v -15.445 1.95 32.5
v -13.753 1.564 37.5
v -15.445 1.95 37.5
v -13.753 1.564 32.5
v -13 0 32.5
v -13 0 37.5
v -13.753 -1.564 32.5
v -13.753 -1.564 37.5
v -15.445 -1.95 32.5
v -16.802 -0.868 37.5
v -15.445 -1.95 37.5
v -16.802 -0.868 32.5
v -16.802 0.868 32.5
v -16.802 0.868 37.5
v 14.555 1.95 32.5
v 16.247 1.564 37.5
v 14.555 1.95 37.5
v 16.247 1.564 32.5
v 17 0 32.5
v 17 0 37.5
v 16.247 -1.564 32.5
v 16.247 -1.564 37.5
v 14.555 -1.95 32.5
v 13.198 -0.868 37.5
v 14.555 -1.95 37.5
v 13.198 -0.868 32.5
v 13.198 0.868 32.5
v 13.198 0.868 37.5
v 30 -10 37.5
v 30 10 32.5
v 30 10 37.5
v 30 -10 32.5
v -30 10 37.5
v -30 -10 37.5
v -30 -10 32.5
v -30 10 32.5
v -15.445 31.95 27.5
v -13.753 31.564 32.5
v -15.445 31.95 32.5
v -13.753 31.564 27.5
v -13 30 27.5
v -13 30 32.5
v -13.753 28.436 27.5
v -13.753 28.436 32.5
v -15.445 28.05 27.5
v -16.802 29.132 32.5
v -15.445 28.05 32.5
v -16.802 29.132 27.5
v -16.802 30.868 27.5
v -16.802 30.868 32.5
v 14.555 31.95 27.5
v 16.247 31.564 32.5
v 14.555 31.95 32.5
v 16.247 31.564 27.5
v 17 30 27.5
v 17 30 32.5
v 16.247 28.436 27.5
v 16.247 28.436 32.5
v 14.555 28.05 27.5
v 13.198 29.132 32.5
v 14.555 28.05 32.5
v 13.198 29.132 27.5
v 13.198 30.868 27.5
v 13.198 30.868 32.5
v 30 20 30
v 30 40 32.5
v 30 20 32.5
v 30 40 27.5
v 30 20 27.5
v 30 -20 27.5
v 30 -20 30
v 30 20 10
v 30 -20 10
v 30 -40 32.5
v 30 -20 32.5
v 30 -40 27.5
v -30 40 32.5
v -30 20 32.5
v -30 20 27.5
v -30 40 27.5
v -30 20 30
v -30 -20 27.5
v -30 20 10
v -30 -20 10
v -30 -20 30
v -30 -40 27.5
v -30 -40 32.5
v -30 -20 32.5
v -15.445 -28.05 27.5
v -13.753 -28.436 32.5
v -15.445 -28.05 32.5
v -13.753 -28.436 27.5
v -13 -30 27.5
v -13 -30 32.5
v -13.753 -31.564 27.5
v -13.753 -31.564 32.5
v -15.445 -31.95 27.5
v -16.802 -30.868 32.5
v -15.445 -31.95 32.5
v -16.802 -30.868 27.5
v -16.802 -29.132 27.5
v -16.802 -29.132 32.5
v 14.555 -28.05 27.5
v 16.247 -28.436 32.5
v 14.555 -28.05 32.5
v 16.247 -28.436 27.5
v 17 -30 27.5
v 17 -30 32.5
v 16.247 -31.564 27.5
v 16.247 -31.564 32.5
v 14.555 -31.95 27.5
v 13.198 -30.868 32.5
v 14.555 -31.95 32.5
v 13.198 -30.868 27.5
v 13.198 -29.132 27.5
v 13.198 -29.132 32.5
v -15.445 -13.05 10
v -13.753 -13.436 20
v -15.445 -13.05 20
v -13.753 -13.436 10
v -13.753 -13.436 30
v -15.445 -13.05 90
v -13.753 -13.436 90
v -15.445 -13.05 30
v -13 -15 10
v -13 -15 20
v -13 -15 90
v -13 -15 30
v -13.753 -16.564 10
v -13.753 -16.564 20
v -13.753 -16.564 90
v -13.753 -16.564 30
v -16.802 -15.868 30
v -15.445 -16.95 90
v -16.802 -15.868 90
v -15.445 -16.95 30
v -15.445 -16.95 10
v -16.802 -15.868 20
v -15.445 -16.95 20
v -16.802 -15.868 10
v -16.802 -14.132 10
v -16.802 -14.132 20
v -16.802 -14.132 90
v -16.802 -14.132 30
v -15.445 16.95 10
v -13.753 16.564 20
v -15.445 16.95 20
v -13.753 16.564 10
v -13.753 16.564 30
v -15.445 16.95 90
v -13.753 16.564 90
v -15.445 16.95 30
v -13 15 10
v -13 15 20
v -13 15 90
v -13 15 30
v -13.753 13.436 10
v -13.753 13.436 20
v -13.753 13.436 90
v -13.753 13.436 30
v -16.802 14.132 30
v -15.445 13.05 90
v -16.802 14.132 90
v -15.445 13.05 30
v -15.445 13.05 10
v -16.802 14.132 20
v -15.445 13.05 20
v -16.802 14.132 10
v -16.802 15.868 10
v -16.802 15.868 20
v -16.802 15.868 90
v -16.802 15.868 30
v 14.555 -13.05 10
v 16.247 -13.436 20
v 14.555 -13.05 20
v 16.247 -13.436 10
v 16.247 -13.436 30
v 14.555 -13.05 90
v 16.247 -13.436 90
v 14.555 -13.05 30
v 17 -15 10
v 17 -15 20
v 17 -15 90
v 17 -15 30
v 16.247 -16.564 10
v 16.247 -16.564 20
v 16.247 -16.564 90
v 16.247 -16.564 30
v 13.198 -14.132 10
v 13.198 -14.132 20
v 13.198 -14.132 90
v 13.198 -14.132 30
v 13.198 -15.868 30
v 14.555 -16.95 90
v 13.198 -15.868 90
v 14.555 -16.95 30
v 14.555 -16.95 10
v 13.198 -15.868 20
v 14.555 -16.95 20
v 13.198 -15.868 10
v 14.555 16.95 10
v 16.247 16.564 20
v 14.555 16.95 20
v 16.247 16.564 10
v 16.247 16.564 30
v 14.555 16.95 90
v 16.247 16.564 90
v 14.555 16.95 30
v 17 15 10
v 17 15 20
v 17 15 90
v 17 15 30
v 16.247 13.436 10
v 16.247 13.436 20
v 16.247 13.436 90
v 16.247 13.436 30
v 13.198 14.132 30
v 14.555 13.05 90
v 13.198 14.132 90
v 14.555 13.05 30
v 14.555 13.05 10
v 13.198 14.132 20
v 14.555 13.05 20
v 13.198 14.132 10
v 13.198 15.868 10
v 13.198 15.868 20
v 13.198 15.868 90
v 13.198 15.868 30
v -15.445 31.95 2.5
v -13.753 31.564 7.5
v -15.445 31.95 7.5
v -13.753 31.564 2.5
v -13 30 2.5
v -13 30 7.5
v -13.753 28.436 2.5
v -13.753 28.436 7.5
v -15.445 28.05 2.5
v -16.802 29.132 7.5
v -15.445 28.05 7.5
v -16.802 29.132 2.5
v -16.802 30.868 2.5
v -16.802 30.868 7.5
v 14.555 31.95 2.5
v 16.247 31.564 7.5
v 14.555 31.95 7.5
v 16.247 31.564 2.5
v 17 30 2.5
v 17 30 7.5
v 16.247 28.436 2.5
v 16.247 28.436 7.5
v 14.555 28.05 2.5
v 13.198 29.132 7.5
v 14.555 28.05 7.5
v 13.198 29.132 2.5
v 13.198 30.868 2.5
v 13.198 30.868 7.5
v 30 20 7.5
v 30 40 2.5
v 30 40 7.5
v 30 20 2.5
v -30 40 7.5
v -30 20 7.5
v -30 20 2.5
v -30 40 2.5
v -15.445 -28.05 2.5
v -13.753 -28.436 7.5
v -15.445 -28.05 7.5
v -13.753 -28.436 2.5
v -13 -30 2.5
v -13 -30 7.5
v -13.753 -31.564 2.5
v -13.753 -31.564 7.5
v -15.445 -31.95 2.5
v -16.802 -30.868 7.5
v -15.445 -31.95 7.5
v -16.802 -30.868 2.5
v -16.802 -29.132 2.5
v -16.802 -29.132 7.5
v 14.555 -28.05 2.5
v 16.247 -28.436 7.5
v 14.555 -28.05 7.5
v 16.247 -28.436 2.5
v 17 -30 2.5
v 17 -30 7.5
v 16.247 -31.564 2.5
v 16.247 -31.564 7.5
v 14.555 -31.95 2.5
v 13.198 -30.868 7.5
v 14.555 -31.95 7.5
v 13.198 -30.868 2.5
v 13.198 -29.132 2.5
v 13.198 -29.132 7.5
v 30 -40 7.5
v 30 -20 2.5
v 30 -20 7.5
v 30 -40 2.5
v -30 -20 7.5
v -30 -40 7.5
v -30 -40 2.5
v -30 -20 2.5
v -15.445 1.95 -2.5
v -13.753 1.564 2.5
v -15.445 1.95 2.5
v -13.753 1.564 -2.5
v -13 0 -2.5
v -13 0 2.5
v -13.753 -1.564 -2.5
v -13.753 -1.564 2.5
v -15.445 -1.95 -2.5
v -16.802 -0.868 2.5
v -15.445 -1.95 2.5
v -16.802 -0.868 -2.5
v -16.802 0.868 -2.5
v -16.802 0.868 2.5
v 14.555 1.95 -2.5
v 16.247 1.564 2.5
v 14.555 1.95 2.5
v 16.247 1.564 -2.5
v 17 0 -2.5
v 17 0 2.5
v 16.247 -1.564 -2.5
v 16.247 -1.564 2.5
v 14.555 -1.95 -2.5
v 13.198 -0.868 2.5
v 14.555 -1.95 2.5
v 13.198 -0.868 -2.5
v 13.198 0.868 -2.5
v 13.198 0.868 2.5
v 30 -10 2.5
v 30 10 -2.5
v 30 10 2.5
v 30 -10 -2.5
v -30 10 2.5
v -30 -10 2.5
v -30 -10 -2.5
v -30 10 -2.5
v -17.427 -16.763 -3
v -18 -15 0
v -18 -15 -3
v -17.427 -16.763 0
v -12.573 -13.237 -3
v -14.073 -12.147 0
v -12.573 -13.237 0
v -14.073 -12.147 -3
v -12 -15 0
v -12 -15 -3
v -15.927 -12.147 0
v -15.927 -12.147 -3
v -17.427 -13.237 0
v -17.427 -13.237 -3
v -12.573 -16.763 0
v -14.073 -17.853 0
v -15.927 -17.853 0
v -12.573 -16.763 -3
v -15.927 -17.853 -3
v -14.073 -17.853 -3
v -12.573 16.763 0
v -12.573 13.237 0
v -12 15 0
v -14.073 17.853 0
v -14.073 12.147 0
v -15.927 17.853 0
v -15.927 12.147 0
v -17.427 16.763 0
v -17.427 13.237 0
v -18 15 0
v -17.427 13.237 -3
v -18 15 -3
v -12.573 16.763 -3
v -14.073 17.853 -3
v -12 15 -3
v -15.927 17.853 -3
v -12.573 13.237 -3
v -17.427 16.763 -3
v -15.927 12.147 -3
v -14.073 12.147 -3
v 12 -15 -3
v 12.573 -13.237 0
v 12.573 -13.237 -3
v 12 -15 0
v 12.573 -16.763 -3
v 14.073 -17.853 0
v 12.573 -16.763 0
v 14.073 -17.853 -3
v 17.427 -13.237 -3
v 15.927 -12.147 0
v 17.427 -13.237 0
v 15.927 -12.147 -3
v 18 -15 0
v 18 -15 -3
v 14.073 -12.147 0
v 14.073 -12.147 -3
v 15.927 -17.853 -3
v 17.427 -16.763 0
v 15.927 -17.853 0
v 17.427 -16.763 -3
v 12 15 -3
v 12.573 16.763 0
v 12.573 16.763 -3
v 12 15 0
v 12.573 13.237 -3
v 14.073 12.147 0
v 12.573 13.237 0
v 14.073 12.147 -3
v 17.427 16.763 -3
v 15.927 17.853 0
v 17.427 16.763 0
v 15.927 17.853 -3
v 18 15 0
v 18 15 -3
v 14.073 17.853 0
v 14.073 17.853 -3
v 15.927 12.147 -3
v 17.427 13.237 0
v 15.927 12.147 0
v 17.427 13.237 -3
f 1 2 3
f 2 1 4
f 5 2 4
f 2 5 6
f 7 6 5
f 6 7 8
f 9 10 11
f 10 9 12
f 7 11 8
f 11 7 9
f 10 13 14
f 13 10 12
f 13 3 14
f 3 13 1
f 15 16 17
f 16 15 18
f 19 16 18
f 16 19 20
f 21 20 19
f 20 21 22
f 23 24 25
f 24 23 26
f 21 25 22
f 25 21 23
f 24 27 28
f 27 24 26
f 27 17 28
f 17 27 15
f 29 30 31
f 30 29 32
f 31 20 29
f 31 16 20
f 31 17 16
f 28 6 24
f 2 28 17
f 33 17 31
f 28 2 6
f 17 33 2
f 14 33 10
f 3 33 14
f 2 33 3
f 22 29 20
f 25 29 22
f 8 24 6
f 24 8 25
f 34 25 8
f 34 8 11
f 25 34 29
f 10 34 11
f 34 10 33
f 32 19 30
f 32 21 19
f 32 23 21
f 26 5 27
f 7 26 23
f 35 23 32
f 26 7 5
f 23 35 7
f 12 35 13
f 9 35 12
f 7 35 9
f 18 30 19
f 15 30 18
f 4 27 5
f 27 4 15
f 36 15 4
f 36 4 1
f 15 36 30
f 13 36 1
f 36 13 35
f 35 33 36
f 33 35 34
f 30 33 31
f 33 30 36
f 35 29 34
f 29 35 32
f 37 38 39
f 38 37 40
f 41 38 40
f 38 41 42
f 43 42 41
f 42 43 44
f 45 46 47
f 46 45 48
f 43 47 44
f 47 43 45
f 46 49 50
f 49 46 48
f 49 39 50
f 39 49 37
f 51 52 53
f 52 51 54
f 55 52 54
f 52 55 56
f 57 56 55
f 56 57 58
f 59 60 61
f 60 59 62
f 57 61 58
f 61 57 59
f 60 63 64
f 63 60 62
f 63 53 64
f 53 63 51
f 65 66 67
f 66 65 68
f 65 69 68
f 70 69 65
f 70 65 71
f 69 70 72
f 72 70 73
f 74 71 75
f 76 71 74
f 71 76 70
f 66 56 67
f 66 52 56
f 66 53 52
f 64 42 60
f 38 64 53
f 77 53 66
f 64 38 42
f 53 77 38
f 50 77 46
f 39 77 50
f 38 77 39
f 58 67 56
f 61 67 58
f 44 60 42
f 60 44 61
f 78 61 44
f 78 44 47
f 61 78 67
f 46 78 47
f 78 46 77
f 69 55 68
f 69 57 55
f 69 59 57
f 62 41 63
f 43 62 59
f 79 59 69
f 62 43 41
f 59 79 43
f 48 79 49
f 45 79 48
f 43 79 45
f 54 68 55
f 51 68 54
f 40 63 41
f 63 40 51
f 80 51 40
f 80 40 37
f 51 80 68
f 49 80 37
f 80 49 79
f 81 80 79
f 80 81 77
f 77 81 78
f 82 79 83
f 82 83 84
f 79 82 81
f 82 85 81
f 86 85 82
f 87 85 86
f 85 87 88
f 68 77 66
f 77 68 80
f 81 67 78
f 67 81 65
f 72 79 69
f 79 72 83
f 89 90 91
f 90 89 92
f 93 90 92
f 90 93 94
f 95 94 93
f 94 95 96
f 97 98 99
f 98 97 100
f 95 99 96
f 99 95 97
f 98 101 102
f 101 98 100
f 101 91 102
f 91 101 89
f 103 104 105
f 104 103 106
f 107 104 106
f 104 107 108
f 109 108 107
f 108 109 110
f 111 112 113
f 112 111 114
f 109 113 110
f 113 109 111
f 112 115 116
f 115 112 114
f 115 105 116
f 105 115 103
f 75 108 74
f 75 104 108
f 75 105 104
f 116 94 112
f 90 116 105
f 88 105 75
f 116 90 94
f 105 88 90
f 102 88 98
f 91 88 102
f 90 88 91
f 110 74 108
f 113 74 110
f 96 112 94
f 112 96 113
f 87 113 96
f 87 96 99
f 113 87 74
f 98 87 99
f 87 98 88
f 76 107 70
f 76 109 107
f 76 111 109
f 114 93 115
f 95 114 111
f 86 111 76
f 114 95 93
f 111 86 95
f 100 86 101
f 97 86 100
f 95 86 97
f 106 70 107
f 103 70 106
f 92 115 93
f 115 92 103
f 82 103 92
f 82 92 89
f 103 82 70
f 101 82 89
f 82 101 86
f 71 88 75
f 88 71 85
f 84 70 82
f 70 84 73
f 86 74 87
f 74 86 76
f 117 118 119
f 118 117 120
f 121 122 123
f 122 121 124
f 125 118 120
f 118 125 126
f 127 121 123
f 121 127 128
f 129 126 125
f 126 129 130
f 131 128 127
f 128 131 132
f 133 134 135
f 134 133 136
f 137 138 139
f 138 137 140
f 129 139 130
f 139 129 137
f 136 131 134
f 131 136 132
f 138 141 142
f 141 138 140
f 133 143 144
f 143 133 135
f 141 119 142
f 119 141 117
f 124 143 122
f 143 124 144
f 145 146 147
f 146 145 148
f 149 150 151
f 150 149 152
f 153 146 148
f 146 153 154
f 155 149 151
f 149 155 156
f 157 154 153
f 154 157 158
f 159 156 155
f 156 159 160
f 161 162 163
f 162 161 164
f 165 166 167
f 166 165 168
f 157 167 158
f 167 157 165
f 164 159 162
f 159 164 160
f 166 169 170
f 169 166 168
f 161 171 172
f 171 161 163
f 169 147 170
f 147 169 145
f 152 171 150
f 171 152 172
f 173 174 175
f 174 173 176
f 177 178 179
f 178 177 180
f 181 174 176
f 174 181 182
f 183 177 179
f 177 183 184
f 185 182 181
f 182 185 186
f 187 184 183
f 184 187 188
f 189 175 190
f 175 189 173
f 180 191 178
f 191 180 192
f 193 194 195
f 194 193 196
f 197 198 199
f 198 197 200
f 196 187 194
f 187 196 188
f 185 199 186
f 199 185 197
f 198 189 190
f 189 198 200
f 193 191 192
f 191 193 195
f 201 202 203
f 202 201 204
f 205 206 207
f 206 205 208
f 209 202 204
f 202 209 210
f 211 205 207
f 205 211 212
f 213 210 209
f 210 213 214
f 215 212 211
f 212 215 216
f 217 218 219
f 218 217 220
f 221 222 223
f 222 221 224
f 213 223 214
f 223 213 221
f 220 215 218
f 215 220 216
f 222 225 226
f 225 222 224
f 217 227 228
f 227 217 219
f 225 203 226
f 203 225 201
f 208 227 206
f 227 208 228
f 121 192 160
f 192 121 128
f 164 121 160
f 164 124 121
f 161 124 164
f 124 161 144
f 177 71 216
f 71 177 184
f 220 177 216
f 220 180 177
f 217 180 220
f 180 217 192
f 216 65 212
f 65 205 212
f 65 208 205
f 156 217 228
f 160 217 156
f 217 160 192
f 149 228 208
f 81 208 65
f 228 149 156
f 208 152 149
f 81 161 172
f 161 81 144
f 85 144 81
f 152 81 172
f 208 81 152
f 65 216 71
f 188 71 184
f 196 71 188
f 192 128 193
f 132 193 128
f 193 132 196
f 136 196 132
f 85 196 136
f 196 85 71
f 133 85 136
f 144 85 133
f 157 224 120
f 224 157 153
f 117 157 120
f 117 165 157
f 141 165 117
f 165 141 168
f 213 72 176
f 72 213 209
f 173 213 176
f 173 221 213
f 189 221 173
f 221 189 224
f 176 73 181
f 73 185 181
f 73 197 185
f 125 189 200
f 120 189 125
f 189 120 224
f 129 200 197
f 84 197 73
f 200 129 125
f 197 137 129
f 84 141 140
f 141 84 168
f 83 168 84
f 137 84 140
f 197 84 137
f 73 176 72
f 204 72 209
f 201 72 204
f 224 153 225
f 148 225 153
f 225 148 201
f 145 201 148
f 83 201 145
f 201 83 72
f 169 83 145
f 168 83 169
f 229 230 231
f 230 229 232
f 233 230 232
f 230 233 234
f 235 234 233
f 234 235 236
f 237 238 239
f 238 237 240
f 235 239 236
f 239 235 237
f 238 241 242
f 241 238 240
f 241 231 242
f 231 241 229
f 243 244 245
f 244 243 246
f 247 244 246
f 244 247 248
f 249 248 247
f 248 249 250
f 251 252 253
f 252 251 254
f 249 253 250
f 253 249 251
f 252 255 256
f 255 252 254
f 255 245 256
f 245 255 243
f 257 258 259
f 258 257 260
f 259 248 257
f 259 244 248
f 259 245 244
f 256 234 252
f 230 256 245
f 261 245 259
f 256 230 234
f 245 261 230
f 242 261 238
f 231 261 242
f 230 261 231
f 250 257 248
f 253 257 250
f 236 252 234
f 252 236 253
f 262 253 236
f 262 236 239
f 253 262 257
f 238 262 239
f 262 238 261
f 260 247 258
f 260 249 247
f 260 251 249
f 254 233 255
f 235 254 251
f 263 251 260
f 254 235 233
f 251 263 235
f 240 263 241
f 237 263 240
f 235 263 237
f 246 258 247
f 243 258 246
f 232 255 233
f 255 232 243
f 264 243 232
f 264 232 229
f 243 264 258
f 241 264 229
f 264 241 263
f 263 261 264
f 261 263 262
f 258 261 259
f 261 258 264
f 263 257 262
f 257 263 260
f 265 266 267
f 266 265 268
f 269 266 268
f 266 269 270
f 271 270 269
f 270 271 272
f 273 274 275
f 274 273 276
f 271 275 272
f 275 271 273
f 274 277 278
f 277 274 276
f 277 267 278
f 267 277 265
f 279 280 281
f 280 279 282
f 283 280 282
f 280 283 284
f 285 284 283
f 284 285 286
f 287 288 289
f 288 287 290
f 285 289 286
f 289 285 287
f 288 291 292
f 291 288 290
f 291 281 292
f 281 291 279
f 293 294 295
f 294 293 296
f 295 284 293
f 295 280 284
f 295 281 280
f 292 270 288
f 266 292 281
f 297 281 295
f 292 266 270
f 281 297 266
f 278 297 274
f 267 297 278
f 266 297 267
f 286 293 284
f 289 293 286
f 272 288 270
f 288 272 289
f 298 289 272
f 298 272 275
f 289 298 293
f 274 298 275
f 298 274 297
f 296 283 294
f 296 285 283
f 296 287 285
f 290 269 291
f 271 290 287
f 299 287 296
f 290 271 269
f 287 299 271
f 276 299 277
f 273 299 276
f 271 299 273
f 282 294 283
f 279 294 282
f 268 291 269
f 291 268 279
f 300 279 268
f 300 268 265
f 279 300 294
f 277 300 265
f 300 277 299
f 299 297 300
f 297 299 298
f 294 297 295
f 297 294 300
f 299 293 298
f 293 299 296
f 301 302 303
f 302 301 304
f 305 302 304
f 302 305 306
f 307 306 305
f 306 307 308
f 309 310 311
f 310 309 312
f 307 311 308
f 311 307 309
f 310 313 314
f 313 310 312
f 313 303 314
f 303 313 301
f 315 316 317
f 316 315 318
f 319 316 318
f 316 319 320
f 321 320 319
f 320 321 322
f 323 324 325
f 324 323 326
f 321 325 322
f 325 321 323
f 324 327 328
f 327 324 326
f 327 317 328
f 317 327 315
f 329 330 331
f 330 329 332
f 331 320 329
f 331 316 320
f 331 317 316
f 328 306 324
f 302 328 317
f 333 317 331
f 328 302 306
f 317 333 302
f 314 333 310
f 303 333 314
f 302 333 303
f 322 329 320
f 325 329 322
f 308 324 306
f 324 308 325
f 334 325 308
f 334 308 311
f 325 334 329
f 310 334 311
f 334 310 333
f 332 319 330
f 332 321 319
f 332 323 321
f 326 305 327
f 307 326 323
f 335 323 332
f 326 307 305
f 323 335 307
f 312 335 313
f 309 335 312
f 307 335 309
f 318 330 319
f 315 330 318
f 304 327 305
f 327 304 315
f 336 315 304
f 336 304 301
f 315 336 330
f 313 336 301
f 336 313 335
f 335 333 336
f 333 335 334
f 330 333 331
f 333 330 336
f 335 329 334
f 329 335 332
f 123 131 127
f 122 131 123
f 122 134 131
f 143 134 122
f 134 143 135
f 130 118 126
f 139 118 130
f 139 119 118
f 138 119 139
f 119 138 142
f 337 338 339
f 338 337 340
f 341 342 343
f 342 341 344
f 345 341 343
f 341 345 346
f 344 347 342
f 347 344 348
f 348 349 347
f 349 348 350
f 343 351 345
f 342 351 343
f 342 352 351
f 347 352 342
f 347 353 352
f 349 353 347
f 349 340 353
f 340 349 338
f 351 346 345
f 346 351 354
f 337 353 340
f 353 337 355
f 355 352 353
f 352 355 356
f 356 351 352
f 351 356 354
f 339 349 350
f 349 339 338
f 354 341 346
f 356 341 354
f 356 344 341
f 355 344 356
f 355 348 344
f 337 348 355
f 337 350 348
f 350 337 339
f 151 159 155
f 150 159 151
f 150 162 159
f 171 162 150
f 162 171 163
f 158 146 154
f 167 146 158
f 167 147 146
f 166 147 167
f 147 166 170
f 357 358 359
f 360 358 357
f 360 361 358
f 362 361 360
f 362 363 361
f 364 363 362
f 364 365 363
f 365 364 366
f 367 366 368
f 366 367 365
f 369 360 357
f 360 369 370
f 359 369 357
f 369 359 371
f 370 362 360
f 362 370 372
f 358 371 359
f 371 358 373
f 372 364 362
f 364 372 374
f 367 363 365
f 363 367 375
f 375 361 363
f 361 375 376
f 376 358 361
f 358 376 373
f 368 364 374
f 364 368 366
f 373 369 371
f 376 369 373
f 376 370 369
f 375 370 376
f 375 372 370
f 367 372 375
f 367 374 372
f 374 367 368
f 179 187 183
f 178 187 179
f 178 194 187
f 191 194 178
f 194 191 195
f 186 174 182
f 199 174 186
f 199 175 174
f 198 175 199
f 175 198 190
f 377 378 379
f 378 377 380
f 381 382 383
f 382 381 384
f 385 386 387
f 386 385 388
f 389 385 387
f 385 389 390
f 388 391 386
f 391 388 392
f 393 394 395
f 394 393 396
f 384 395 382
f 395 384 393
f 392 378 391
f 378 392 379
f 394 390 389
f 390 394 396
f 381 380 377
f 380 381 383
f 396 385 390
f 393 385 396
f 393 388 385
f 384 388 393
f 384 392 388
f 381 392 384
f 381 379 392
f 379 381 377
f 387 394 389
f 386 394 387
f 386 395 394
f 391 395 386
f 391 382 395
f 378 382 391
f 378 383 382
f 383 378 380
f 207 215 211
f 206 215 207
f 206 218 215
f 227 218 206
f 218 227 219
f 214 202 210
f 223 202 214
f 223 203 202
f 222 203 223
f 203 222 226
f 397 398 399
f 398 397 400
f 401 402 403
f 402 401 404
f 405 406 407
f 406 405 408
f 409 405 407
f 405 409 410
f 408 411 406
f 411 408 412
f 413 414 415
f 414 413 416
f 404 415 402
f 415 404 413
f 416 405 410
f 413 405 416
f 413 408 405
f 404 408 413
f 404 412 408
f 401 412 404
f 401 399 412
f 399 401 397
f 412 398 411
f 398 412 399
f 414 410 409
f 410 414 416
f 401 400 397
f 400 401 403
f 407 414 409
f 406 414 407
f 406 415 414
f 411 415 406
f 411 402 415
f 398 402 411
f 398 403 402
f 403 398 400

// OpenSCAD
// Parameters
plate_thickness = 5; // Thickness of side and connecting plates
block_width = 40;    // Width of the central block
block_height = 20;   // Height of the central block
block_length = 60;   // Length of the central block
plate_length = 60;   // Length of side and connecting plates
plate_width = 20;    // Width of side and connecting plates
bolt_diameter = 4;   // Diameter of bolts
bolt_length = 70;    // Length of bolts
nut_diameter = 6;    // Diameter of nuts
nut_thickness = 3;   // Thickness of nuts
hole_spacing = 30;   // Distance between bolt holes

// Central Block
module central_block() {
    difference() {
        cube([block_length, block_width, block_height], center = true);
        for (x = [-hole_spacing/2, hole_spacing/2]) {
            for (y = [-block_width/2 + 5, block_width/2 - 5]) {
                translate([x, y, 0])
                    cylinder(r = bolt_diameter/2, h = block_height + 2, center = true);
            }
        }
    }
}

// Side Plate
module side_plate() {
    difference() {
        cube([plate_length, plate_width, plate_thickness], center = true);
        for (x = [-hole_spacing/2, hole_spacing/2]) {
            translate([x, 0, 0])
                cylinder(r = bolt_diameter/2, h = plate_thickness + 2, center = true);
        }
    }
}

// Connecting Plate
module connecting_plate() {
    difference() {
        cube([plate_length, plate_width, plate_thickness], center = true);
        for (x = [-hole_spacing/2, hole_spacing/2]) {
            translate([x, 0, 0])
                cylinder(r = bolt_diameter/2, h = plate_thickness + 2, center = true);
        }
    }
}

// Bolt
module bolt() {
    cylinder(r = bolt_diameter/2, h = bolt_length, center = false);
}

// Nut
module nut() {
    cylinder(r = nut_diameter/2, h = nut_thickness, center = false);
}

// Assembly
module assembly() {
    // Layer 1: Top Connecting Plate
    translate([0, 0, bolt_length/2])
        connecting_plate();

    // Layer 2: Top Side Plates
    translate([0, plate_width/2 + block_width/2, bolt_length/2 - plate_thickness])
        side_plate();
    translate([0, -plate_width/2 - block_width/2, bolt_length/2 - plate_thickness])
        side_plate();

    // Layer 3: Central Block
    translate([0, 0, bolt_length/2 - plate_thickness - block_height/2])
        central_block();

    // Layer 4: Bottom Side Plates
    translate([0, plate_width/2 + block_width/2, bolt_length/2 - plate_thickness - block_height - plate_thickness])
        side_plate();
    translate([0, -plate_width/2 - block_width/2, bolt_length/2 - plate_thickness - block_height - plate_thickness])
        side_plate();

    // Layer 5: Bottom Connecting Plate
    translate([0, 0, bolt_length/2 - plate_thickness - block_height - 2*plate_thickness])
        connecting_plate();

    // Fasteners: Bolts and Nuts
    for (x = [-hole_spacing/2, hole_spacing/2]) {
        for (y = [-block_width/2 + 5, block_width/2 - 5]) {
            translate([x, y, bolt_length/2 - plate_thickness - block_height/2])
                bolt();
            translate([x, y, bolt_length/2 - plate_thickness - block_height - 2*plate_thickness - nut_thickness])
                nut();
        }
    }
}

// Render the assembly
assembly();
